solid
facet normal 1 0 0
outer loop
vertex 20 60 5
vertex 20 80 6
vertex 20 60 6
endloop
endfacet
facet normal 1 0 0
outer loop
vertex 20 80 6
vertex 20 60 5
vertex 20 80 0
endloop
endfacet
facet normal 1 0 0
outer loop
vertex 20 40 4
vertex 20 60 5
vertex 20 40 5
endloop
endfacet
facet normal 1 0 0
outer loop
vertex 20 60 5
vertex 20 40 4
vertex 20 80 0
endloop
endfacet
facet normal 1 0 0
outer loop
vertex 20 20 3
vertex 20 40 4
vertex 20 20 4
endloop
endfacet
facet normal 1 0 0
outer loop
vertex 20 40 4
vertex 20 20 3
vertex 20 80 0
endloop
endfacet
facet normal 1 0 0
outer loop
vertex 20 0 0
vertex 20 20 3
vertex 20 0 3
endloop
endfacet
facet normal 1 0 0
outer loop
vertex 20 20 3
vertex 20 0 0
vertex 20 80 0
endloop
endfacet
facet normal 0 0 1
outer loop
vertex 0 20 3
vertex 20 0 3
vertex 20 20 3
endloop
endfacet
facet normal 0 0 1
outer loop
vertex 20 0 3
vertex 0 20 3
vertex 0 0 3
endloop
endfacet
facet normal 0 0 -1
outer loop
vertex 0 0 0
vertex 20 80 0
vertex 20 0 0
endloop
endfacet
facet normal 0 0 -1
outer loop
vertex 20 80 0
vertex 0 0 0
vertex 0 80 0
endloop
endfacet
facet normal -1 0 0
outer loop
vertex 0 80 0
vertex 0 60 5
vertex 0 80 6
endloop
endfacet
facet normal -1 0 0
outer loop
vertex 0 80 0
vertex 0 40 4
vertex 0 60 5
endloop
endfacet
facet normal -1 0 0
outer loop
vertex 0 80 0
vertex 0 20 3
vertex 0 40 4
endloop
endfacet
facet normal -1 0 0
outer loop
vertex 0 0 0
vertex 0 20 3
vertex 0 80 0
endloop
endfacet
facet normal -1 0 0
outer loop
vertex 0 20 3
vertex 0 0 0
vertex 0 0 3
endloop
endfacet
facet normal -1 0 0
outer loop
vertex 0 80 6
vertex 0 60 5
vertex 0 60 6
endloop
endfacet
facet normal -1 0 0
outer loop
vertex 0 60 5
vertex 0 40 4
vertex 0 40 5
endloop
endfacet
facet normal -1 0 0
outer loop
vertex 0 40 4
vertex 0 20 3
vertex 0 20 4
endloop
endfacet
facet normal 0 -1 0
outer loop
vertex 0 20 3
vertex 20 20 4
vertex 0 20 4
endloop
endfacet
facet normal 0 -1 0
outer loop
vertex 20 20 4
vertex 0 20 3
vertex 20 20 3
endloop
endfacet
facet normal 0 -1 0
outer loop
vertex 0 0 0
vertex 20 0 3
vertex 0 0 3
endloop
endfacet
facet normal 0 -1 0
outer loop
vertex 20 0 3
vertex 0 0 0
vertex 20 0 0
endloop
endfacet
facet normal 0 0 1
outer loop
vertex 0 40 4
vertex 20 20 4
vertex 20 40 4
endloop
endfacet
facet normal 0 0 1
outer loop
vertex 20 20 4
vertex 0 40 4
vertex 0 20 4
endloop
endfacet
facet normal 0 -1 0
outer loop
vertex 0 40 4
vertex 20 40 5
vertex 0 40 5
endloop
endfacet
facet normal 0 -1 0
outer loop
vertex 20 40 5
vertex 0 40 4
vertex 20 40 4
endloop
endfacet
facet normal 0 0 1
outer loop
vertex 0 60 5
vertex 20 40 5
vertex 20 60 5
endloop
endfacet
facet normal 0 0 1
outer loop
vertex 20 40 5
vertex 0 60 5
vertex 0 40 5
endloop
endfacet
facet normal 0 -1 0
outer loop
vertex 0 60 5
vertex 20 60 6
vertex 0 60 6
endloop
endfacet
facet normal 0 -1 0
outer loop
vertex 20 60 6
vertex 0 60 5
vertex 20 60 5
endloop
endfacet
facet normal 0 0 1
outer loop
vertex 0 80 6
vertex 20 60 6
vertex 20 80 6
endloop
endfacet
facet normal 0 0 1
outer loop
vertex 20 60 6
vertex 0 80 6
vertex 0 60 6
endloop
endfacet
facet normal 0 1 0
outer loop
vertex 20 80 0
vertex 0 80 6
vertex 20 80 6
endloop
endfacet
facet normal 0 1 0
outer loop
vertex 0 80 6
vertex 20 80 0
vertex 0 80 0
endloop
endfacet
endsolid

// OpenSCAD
$fa = 1;
$fs = 0.4;

layers = 3;
x = 20;
y = 20;
startingZ = 3;

for ( i = [0 : layers] ) {
  z = startingZ + i;
  translate([0, i * y, 0])
    cube([x, y, z], center=false);
}
